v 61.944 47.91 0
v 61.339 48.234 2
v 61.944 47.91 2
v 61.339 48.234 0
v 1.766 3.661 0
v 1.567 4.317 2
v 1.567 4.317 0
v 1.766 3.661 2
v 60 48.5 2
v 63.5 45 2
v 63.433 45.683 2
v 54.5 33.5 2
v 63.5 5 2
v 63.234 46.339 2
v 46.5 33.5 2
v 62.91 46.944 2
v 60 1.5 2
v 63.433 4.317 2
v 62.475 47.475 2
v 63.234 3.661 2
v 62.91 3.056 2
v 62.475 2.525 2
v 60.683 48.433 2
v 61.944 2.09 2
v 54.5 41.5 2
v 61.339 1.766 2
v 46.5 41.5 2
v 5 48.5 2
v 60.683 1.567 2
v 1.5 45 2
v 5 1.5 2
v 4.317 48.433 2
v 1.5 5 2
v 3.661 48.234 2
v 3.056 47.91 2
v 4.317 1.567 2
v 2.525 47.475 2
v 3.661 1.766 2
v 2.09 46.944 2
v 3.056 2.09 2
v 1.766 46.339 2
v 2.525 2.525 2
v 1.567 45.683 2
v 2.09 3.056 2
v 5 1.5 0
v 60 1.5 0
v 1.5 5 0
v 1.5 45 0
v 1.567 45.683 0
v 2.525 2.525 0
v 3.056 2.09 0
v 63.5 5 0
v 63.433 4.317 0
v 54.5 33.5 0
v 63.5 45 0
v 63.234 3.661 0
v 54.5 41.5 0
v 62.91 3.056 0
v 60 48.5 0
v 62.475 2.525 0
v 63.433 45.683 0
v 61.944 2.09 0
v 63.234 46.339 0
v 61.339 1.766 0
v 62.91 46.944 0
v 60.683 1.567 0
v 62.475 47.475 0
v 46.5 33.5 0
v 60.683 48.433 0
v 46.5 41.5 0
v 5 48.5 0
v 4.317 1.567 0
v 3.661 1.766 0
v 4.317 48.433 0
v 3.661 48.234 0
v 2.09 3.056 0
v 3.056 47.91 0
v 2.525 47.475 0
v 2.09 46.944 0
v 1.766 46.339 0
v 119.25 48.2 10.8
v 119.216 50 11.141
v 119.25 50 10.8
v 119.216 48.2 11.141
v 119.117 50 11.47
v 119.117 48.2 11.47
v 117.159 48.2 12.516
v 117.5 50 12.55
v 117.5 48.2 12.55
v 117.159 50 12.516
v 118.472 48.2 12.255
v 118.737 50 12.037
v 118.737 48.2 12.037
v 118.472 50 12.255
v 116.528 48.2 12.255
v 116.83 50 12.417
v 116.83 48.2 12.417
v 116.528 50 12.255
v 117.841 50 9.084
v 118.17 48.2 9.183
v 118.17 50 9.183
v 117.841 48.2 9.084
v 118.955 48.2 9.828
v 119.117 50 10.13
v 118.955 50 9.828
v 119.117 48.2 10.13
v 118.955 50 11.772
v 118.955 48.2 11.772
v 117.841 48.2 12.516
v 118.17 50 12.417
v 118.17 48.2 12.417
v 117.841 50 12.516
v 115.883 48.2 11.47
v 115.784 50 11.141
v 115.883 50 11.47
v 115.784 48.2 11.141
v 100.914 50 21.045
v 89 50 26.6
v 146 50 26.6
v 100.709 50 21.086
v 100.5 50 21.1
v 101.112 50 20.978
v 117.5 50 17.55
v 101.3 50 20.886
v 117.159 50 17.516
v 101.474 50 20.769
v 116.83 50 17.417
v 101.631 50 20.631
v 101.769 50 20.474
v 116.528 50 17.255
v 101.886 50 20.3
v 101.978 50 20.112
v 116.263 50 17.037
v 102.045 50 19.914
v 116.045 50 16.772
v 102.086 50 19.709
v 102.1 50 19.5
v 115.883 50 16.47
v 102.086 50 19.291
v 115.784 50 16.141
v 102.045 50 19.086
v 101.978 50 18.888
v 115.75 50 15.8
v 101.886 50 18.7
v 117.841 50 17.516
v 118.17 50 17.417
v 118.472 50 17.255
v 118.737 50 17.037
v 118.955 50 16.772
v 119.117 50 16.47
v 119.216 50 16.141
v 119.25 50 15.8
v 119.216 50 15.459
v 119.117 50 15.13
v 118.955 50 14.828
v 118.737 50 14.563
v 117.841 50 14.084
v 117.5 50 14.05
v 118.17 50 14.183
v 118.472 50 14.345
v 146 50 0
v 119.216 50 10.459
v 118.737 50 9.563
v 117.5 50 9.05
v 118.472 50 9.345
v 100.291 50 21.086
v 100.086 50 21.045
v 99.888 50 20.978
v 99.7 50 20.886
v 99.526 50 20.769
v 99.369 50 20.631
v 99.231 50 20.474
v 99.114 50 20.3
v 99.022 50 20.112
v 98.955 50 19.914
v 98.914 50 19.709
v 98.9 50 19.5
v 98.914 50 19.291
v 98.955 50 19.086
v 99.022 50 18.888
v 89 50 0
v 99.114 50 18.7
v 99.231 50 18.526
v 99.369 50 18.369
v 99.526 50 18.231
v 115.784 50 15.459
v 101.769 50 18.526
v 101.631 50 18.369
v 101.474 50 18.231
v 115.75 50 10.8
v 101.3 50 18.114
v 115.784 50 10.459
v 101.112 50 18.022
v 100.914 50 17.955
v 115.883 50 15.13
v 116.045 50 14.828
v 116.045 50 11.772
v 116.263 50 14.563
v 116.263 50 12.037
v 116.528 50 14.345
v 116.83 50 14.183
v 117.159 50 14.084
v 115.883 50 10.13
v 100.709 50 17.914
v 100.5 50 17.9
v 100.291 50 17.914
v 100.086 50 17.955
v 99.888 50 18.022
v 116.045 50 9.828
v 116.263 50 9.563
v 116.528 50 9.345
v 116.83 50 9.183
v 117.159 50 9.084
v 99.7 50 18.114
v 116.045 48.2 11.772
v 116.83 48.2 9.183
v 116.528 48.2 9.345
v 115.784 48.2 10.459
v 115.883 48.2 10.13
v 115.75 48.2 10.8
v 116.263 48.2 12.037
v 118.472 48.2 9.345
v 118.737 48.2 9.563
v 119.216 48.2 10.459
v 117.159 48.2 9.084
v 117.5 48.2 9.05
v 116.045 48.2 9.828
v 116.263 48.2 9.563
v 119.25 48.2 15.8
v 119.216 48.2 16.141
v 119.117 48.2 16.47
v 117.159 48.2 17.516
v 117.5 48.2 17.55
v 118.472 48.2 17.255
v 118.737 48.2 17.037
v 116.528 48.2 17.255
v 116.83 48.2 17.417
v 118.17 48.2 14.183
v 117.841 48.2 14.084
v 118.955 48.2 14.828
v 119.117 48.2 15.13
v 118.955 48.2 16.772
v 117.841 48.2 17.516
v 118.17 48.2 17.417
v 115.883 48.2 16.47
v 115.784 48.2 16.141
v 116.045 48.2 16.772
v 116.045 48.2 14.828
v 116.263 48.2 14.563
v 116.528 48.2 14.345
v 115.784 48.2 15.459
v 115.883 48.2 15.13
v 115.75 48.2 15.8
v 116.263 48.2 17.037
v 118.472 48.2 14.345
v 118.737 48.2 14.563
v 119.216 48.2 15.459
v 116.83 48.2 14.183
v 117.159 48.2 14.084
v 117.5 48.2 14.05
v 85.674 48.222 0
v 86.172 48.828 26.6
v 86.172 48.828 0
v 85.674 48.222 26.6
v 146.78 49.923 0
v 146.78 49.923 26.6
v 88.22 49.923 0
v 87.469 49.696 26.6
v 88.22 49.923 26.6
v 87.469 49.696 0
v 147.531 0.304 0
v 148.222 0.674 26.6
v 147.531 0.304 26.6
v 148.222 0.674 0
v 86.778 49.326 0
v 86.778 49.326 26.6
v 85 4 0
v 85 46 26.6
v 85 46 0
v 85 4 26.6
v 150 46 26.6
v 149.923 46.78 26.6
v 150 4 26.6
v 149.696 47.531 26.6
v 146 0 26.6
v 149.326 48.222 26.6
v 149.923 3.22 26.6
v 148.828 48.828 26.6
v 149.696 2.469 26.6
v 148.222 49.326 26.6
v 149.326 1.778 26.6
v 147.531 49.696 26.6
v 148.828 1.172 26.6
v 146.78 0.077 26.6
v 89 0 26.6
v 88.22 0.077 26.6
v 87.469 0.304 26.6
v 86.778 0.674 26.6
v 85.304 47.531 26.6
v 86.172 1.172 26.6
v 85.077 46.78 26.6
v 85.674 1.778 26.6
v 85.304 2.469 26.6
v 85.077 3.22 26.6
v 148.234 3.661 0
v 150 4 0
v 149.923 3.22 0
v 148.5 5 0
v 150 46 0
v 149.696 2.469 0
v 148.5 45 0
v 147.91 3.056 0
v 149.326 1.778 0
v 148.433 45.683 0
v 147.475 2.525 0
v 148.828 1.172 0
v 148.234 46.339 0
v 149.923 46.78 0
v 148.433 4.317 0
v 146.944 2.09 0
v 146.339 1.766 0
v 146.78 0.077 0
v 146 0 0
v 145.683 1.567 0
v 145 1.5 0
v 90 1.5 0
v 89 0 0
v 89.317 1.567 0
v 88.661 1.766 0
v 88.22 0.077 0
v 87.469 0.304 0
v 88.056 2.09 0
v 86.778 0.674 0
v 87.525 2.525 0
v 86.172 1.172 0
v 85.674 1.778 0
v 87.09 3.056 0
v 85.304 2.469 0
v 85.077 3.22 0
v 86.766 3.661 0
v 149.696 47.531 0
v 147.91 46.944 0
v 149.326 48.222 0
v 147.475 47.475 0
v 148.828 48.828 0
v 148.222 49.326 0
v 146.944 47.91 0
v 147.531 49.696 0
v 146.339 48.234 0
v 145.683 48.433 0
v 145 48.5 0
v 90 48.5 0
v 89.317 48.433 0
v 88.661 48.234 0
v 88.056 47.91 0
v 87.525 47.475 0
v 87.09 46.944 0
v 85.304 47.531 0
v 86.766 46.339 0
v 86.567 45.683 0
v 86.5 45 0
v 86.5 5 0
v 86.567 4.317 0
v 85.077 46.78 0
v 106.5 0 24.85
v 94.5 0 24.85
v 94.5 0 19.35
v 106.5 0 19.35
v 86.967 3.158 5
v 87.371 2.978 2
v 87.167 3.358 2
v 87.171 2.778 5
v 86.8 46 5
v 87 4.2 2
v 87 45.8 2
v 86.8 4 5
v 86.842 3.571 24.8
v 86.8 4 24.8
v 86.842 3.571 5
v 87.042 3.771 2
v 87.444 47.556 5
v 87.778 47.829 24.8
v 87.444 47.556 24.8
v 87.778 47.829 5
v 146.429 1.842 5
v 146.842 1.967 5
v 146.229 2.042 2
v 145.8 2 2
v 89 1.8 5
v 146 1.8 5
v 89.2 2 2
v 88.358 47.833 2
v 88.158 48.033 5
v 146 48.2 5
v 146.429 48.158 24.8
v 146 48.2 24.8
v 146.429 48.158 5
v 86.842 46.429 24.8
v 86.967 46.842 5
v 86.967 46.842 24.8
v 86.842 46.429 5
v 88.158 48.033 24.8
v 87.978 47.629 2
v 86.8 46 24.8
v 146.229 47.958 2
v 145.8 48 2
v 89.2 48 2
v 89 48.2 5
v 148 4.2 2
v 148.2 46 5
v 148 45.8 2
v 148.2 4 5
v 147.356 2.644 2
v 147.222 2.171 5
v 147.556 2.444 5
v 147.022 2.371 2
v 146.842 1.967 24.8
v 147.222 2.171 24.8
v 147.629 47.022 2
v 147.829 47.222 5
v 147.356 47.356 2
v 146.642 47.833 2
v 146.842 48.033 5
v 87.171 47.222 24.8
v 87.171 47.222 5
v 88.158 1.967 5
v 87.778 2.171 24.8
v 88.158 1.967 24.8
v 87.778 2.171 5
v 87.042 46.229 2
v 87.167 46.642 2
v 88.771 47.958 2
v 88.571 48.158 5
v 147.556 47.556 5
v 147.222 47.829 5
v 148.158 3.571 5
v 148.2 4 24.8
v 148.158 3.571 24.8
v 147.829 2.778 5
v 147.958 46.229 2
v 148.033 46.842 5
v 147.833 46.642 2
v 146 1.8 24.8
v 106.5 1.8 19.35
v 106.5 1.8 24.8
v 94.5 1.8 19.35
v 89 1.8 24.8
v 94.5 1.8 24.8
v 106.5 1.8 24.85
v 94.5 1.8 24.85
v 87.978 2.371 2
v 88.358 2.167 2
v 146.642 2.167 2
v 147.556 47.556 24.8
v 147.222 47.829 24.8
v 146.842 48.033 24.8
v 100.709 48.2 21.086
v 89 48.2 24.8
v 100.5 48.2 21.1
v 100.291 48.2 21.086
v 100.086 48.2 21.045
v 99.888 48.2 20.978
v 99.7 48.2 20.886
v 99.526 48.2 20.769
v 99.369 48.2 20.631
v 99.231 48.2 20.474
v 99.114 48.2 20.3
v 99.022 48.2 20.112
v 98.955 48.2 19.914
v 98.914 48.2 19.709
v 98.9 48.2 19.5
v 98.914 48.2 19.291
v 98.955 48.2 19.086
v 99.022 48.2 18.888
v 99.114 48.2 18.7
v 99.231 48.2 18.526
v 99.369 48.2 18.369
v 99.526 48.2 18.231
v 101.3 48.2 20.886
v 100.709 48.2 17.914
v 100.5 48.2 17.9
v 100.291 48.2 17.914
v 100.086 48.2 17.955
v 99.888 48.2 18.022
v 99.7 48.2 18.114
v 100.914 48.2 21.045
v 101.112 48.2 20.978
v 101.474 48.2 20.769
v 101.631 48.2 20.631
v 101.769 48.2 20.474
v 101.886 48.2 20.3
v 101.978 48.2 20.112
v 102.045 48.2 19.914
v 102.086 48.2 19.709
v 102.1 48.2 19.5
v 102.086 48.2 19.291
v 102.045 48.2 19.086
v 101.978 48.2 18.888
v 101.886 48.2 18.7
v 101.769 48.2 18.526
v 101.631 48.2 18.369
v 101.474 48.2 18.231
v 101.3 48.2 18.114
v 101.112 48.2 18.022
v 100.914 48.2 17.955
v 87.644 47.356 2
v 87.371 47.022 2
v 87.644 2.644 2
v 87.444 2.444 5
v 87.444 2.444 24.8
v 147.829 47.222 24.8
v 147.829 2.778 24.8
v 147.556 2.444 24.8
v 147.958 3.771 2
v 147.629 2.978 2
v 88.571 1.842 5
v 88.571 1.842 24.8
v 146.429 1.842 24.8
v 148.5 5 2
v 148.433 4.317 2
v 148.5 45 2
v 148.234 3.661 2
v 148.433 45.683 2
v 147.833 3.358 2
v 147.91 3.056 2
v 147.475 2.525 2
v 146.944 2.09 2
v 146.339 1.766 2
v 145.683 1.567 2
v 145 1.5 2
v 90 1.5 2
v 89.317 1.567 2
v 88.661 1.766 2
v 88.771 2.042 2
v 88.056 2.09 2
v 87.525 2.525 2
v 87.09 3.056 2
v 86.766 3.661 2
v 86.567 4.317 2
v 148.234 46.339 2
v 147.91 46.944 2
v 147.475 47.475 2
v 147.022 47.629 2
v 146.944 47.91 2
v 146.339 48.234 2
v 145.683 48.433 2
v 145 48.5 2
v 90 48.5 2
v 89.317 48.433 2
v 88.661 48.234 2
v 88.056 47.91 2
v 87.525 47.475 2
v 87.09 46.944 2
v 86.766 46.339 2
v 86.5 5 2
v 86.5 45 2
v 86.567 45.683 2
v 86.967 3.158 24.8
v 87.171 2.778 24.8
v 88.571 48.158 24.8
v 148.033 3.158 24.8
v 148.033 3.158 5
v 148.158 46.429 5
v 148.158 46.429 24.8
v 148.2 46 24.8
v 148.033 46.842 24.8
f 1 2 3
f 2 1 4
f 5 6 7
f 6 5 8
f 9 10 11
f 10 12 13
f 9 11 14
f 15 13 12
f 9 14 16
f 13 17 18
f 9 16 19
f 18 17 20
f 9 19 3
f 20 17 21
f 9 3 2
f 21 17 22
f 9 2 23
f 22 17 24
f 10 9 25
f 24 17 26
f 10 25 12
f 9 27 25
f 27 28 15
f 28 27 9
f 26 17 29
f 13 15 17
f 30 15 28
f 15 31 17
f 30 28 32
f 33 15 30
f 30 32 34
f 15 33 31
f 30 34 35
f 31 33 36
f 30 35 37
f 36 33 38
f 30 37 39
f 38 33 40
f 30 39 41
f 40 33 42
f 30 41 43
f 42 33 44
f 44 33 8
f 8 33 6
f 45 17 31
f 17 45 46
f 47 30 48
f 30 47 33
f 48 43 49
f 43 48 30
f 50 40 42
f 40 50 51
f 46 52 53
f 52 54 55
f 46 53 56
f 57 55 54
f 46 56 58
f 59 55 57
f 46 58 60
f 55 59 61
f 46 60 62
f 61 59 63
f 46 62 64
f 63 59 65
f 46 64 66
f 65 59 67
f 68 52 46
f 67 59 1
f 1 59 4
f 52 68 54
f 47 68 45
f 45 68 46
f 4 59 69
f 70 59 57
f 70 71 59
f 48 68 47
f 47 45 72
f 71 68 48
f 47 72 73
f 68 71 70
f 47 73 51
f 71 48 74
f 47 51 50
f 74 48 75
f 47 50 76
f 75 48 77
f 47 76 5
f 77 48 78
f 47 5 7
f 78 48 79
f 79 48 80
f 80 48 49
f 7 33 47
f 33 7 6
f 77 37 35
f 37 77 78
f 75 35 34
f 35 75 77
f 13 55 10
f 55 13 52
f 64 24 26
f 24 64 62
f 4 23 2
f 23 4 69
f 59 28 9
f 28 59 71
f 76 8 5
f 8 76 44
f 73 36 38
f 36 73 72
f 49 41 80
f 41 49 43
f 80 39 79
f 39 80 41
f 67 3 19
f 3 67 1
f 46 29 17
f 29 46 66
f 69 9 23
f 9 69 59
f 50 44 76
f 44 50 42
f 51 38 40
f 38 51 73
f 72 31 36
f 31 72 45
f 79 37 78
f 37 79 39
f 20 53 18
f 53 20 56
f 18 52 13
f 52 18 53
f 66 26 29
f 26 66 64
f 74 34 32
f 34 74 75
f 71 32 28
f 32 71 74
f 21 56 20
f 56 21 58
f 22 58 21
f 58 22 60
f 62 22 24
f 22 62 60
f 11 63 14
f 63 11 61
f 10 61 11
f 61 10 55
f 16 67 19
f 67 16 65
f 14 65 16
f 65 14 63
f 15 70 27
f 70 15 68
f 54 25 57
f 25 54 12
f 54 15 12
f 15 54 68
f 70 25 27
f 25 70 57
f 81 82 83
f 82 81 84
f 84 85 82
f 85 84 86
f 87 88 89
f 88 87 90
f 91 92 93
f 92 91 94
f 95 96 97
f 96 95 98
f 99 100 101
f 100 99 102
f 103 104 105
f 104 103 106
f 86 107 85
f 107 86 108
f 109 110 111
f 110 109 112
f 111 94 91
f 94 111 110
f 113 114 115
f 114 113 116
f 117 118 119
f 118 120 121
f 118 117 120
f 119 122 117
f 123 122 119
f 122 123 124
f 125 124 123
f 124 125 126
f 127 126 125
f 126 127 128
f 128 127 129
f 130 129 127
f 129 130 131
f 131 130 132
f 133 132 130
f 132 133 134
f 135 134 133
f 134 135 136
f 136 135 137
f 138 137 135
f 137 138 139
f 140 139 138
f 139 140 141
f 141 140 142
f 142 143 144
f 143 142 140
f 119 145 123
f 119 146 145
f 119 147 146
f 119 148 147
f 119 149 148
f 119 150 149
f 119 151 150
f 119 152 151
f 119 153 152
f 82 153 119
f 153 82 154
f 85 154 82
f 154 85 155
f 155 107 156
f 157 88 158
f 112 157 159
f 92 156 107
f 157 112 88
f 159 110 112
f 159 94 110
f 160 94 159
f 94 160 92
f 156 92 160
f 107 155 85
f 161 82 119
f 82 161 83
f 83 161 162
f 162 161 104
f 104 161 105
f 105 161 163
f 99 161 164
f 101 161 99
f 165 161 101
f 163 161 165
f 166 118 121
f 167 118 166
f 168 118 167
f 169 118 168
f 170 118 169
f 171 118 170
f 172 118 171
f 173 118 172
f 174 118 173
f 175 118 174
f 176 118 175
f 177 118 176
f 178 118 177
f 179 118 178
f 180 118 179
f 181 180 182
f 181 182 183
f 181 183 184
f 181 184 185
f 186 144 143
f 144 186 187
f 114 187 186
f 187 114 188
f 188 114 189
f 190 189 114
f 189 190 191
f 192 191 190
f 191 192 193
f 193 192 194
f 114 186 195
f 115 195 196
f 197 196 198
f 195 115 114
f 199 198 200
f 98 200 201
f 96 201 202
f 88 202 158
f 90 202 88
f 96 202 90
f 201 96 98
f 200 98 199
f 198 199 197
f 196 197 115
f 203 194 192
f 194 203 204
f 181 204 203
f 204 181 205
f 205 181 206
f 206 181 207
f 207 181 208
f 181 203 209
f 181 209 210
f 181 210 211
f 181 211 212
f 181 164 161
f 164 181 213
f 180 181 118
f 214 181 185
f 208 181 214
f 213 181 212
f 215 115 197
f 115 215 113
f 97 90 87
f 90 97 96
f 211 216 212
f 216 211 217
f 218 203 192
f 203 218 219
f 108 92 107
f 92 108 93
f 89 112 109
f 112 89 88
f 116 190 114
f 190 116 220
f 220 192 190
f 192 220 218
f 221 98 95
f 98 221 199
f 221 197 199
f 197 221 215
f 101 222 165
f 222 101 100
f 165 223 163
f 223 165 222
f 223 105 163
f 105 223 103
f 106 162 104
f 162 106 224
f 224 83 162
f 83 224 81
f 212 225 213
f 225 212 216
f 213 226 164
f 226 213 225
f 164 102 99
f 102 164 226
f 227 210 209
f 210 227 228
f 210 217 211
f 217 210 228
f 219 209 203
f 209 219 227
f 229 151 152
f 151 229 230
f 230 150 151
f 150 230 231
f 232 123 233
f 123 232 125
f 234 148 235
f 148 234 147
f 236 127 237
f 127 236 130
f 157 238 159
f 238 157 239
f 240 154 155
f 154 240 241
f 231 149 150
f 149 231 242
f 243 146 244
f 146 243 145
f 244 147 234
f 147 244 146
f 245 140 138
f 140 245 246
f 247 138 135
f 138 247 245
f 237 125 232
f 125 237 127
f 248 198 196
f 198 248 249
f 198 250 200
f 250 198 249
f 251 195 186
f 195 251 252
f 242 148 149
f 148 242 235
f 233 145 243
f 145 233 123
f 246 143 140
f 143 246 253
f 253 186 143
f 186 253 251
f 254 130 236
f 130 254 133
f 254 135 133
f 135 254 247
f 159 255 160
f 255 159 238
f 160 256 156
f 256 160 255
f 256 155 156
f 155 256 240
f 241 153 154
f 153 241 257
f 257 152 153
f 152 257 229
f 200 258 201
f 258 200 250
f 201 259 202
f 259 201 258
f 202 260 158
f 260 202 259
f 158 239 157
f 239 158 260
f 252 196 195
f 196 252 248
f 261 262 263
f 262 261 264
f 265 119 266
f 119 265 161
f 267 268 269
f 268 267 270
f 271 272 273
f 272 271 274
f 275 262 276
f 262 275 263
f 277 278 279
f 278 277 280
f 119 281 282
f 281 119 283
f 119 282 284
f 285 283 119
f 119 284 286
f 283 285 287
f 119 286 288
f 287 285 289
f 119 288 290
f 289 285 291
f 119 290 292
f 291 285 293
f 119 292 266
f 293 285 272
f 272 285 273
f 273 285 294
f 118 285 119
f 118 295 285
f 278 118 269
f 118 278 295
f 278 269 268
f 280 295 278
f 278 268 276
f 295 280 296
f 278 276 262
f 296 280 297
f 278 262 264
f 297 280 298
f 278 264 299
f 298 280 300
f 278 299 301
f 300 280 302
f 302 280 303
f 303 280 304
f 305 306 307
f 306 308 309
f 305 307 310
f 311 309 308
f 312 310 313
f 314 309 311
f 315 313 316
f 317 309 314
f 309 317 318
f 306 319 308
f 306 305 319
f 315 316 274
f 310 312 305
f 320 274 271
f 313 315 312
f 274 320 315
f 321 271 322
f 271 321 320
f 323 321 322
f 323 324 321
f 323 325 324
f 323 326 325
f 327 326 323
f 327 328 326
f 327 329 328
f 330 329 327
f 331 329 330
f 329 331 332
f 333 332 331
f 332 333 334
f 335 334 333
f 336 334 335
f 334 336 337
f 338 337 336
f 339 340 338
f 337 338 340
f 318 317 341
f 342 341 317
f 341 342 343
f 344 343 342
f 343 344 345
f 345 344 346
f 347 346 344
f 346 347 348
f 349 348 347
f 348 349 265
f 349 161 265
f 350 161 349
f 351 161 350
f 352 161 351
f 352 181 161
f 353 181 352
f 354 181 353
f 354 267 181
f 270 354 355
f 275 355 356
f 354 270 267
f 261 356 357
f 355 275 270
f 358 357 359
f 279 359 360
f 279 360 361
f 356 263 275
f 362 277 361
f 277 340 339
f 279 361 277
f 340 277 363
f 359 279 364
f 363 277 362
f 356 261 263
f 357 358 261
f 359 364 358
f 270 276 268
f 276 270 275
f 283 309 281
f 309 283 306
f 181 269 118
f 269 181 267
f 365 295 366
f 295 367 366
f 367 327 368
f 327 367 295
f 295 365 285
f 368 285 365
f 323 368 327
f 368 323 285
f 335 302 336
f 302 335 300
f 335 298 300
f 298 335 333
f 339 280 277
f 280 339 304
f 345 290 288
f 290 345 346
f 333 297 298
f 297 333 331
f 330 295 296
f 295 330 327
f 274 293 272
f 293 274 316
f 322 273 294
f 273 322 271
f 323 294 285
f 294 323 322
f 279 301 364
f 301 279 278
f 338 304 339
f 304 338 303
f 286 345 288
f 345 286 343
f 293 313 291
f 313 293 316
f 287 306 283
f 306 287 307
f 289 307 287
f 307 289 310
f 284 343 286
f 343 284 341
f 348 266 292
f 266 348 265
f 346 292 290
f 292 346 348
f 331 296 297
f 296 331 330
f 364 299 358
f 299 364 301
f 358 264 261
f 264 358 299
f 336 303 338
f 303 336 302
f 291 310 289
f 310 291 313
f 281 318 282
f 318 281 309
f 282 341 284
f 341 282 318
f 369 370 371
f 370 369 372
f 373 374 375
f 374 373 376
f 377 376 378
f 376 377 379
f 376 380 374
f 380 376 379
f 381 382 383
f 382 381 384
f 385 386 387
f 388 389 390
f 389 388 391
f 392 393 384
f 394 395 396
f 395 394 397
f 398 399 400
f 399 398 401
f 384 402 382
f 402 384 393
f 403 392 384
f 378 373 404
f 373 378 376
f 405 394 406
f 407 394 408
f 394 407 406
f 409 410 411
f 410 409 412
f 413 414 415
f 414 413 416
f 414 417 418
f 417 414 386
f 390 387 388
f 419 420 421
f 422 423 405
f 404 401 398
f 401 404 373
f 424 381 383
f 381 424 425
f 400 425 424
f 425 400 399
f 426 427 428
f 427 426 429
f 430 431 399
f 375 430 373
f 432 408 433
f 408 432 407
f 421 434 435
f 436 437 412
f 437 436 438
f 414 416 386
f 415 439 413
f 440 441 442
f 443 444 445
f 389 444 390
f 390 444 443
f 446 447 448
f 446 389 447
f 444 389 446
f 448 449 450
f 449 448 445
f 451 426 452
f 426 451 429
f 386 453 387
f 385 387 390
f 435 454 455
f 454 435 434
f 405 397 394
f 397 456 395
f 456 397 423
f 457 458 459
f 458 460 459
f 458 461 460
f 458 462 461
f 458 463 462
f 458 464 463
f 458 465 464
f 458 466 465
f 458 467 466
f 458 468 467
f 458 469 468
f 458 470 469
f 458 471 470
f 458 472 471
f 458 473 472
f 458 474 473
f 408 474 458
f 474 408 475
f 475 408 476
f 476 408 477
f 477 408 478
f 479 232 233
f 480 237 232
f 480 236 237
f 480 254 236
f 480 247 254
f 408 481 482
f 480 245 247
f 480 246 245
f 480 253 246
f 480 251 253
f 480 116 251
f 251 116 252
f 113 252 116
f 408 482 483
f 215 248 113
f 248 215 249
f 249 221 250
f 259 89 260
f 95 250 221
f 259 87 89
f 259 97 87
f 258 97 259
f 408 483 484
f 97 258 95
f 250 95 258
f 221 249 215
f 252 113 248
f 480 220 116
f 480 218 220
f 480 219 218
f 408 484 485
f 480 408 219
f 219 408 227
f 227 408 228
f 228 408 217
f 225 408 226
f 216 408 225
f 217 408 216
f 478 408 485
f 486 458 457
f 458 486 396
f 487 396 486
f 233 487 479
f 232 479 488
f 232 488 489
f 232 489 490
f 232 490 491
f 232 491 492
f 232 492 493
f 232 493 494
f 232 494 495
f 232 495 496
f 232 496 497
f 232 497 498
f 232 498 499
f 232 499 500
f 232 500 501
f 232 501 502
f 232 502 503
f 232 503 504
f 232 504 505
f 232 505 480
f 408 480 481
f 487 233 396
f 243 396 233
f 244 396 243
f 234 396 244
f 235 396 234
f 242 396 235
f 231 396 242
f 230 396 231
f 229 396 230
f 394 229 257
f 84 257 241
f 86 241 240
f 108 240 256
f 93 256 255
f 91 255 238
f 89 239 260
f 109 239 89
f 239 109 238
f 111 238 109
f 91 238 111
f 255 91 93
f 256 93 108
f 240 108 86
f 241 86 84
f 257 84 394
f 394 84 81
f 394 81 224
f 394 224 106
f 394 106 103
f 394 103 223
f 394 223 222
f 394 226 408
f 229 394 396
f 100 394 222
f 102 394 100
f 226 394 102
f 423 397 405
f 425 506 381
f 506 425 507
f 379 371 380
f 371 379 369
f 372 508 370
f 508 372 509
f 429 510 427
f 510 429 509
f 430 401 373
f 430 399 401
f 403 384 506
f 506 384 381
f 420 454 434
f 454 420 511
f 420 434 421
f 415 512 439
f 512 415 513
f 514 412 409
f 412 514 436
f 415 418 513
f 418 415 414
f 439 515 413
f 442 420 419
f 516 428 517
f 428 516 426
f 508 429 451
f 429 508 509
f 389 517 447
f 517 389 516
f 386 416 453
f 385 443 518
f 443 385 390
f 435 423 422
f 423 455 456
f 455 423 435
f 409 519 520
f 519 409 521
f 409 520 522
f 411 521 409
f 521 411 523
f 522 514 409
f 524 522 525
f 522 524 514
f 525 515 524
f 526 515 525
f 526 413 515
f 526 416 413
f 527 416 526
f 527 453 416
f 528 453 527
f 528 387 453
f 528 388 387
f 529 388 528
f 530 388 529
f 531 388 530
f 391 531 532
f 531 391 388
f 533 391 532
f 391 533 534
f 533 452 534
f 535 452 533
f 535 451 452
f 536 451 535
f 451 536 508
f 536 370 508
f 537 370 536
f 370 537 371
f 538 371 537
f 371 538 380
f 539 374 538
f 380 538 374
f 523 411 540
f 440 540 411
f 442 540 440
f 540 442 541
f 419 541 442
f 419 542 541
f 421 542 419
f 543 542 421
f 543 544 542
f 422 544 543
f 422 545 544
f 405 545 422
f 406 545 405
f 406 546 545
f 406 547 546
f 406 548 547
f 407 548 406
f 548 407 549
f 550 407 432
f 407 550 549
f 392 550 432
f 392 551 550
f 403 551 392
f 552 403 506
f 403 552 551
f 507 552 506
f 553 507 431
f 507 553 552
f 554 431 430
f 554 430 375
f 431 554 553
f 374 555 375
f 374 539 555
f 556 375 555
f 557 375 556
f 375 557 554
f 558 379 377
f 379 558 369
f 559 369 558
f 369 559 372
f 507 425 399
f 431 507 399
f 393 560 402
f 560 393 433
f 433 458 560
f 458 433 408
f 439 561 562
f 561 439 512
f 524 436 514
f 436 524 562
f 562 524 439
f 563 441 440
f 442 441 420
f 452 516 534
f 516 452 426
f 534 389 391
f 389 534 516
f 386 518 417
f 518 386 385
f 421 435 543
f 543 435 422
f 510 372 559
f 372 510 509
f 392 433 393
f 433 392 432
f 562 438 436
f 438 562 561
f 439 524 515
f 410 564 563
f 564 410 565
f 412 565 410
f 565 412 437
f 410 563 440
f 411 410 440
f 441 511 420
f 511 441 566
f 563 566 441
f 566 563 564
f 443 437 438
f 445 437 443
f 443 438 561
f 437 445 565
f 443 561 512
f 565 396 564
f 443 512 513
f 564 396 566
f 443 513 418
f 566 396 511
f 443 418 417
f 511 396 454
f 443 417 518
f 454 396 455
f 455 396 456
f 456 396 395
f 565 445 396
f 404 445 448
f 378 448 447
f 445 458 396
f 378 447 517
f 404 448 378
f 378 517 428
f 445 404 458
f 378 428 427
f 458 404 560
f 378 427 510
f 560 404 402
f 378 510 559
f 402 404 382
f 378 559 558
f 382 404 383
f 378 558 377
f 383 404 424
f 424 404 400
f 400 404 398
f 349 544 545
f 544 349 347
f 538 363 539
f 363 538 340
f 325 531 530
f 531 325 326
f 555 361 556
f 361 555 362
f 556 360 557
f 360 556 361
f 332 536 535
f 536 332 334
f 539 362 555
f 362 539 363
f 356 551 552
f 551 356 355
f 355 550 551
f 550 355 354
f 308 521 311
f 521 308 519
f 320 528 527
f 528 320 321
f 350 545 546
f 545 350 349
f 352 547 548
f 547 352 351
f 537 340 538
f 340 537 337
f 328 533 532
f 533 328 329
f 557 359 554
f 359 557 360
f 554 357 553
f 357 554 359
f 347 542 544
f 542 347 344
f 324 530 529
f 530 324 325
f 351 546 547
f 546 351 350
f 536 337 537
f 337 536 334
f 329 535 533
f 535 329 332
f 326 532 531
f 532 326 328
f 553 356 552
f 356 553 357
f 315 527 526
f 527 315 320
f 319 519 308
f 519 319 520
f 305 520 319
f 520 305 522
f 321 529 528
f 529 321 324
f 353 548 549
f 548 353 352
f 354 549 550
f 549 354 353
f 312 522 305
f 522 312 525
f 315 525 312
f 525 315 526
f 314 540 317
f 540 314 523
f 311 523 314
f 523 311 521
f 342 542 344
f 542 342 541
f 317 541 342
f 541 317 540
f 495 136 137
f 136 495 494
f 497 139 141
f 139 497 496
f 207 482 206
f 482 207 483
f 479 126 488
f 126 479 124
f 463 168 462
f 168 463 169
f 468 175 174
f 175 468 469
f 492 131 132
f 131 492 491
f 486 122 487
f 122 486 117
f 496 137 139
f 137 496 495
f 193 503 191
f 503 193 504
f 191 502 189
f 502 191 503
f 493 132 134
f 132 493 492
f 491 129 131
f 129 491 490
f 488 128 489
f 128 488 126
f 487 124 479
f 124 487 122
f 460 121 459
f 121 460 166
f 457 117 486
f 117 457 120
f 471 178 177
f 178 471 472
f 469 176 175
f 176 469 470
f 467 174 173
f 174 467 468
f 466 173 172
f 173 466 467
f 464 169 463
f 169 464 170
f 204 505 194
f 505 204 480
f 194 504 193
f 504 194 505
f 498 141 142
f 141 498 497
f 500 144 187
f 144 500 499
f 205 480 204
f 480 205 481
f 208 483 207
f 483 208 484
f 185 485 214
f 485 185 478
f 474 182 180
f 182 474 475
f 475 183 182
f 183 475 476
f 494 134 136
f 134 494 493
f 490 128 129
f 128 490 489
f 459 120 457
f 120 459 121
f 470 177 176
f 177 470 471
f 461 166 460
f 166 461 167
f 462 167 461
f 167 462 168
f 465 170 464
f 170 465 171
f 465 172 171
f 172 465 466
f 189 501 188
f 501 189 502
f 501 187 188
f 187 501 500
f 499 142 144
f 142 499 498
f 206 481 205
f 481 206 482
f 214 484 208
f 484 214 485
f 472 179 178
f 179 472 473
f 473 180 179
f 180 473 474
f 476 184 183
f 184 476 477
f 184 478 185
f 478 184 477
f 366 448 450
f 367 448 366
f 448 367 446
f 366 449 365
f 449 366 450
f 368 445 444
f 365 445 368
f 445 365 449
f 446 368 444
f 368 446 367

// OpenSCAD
// LifeLog Camera 外壳 v2
// 硬件: 电池(长36宽27高22) + ESP32(长43宽27高23)
// 按钮: 3mm, 位于电池顶部; USB-C: 位于电池底部

battery_w  = 27;   // 电池宽
battery_h  = 22;   // 电池高
battery_d  = 36;   // 电池长

esp32_w    = 27;   // ESP32宽
esp32_h    = 23;   // ESP32高
esp32_d    = 43;   // ESP32长

gap        = 4; clearance  = 1.5;
wall       = 1.8; round_r    = 4;

// 内部尺寸
inner_w = battery_w + gap + esp32_w + clearance * 2;  // 长61
inner_d = 23;           // 高23
inner_h = max(battery_d, esp32_d) + clearance * 2;  // 宽46

shelf_wall = 2; shelf_h = 5;
cover_ledge = 1.5; cover_d = 2;

// 外部尺寸
body_w = inner_w + 2 * shelf_wall;  // 长65
body_h = shelf_wall + inner_h + cover_d;  // 高27
body_d = inner_d + 2 * wall;         // 宽50

// 元件位置
clo = shelf_wall;
elo = clo + battery_w + gap;
cbo = shelf_wall + (inner_h - battery_h) / 2;  // 电池Y居中
ebo = shelf_wall + (inner_h - esp32_h) / 2;    // ESP32 Y居中
cdo = clearance;
edo = clearance;

cam_sz = 8;
cam_cx = elo + esp32_w / 2;
cam_top_margin = cam_sz + (shelf_h - cover_d);
cam_cy = body_h - cover_ledge - cam_top_margin - cam_sz/2;

btn_d = 3.2; btn_h = 11;
btn_cx = clo + battery_w / 2;
btn_cz = cdo + battery_d / 2;

usb_w = 10; usb_h = 4;
usb_cx = clo + battery_w / 2;
usb_cz = cdo + battery_d / 2 + 2.6;

lanyard_d = 3.5; lanyard_num = 2; lanyard_sp = 5;
lanyard_at_x = body_w / 2;
lanyard_at_z = body_d / 2;
lanyard_dir = "z";

cover_w = body_w - 2 * cover_ledge;
cover_h = body_h - 2 * cover_ledge;
cover_r = round_r - 0.5;

module rb(w, h, d, r) {
    hull() for(x=[r, w-r]) for(y=[r, h-r])
        translate([x, y, 0]) cylinder(r=r, h=d, $fn=32);
}

module front_shell() {
    difference() {
        color("LightSteelBlue", 0.9)
        translate([cover_ledge, cover_ledge, 0])
            rb(cover_w, cover_h, cover_d, cover_r);
        translate([cam_cx, cam_cy, -1])
            cube([cam_sz, cam_sz, cover_d + 2]);  // 去掉center=true, 从Z=-1贯穿到Z=3
    }
}

module back_shell() {
    bd = body_d;
    difference() {
        color("LightSlateGray", 0.9) rb(body_w, body_h, bd, round_r);
        hull() {
            translate([shelf_wall, shelf_wall, cover_d])
                rb(inner_w, inner_h, 0.1, round_r - wall);
            translate([wall, wall, shelf_h])
                rb(body_w - 2*wall, body_h - 2*wall, 0.1, round_r - wall);
        }
        translate([wall, wall, shelf_h])
            rb(body_w - 2*wall, body_h - 2*wall, bd - wall - shelf_h, round_r - wall);
        translate([cover_ledge, cover_ledge, 0])
            rb(cover_w, cover_h, cover_d, cover_r);
        btn_ty = cbo + battery_h;
        btn_ch = body_h - btn_ty;
        translate([btn_cx, body_h, btn_cz])
            rotate([90, 0, 0]) cylinder(d=btn_d, h=wall + 2, $fn=48);
        translate([btn_cx, btn_ty, btn_cz])
            rotate([90, 0, 0])
                difference() {
                    cylinder(d=btn_d + 3, h=btn_ch, $fn=48);
                    translate([0, 0, -1])
                        cylinder(d=btn_d, h=btn_ch + 2, $fn=48);
                }
        translate([usb_cx, wall + (wall + 3)/2, usb_cz])
            cube([usb_w, wall + 3, usb_h], center=true);
        translate([usb_cx, wall - 2, usb_cz])
            cube([usb_w + 2, 4, usb_h + 1.5], center=true);
        if (lanyard_num == 1) {
            translate([lanyard_at_x, body_h, lanyard_at_z])
                rotate([90, 0, 0]) cylinder(d=lanyard_d, h=wall + 2, $fn=32);
        } else {
            if (lanyard_dir == "x") {
                for (x = [lanyard_at_x - lanyard_sp/2, lanyard_at_x + lanyard_sp/2])
                    translate([x, body_h, lanyard_at_z])
                        rotate([90, 0, 0]) cylinder(d=lanyard_d, h=wall + 2, $fn=32);
            } else {
                for (z = [lanyard_at_z - lanyard_sp/2, lanyard_at_z + lanyard_sp/2])
                    translate([lanyard_at_x, body_h, z])
                        rotate([90, 0, 0]) cylinder(d=lanyard_d, h=wall + 2, $fn=32);
            }
        }
    }
}

translate([0, 0, 0]) front_shell();
translate([body_w + 20, 0, 0]) back_shell();
// front_shell();
// back_shell();
